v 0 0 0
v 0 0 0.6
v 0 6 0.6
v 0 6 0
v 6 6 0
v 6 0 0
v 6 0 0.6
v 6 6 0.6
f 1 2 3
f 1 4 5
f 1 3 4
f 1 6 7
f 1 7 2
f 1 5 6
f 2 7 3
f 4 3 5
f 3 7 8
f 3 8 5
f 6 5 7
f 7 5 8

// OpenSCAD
/* Warning, this is a very basic generator with a lot of approximation 
input data : [UQFN, PTX, 6x6x0.60mm, 48, , A, C04-00442A]
generated by com.zoubworld.electronics.cad.model3d.Basic
Date : Sun Feb 15 10:50:48 CET 2026
*/

//body
color("black")
translate([0,0,0])
cube([6.0,6.0,0.6], center=false);
